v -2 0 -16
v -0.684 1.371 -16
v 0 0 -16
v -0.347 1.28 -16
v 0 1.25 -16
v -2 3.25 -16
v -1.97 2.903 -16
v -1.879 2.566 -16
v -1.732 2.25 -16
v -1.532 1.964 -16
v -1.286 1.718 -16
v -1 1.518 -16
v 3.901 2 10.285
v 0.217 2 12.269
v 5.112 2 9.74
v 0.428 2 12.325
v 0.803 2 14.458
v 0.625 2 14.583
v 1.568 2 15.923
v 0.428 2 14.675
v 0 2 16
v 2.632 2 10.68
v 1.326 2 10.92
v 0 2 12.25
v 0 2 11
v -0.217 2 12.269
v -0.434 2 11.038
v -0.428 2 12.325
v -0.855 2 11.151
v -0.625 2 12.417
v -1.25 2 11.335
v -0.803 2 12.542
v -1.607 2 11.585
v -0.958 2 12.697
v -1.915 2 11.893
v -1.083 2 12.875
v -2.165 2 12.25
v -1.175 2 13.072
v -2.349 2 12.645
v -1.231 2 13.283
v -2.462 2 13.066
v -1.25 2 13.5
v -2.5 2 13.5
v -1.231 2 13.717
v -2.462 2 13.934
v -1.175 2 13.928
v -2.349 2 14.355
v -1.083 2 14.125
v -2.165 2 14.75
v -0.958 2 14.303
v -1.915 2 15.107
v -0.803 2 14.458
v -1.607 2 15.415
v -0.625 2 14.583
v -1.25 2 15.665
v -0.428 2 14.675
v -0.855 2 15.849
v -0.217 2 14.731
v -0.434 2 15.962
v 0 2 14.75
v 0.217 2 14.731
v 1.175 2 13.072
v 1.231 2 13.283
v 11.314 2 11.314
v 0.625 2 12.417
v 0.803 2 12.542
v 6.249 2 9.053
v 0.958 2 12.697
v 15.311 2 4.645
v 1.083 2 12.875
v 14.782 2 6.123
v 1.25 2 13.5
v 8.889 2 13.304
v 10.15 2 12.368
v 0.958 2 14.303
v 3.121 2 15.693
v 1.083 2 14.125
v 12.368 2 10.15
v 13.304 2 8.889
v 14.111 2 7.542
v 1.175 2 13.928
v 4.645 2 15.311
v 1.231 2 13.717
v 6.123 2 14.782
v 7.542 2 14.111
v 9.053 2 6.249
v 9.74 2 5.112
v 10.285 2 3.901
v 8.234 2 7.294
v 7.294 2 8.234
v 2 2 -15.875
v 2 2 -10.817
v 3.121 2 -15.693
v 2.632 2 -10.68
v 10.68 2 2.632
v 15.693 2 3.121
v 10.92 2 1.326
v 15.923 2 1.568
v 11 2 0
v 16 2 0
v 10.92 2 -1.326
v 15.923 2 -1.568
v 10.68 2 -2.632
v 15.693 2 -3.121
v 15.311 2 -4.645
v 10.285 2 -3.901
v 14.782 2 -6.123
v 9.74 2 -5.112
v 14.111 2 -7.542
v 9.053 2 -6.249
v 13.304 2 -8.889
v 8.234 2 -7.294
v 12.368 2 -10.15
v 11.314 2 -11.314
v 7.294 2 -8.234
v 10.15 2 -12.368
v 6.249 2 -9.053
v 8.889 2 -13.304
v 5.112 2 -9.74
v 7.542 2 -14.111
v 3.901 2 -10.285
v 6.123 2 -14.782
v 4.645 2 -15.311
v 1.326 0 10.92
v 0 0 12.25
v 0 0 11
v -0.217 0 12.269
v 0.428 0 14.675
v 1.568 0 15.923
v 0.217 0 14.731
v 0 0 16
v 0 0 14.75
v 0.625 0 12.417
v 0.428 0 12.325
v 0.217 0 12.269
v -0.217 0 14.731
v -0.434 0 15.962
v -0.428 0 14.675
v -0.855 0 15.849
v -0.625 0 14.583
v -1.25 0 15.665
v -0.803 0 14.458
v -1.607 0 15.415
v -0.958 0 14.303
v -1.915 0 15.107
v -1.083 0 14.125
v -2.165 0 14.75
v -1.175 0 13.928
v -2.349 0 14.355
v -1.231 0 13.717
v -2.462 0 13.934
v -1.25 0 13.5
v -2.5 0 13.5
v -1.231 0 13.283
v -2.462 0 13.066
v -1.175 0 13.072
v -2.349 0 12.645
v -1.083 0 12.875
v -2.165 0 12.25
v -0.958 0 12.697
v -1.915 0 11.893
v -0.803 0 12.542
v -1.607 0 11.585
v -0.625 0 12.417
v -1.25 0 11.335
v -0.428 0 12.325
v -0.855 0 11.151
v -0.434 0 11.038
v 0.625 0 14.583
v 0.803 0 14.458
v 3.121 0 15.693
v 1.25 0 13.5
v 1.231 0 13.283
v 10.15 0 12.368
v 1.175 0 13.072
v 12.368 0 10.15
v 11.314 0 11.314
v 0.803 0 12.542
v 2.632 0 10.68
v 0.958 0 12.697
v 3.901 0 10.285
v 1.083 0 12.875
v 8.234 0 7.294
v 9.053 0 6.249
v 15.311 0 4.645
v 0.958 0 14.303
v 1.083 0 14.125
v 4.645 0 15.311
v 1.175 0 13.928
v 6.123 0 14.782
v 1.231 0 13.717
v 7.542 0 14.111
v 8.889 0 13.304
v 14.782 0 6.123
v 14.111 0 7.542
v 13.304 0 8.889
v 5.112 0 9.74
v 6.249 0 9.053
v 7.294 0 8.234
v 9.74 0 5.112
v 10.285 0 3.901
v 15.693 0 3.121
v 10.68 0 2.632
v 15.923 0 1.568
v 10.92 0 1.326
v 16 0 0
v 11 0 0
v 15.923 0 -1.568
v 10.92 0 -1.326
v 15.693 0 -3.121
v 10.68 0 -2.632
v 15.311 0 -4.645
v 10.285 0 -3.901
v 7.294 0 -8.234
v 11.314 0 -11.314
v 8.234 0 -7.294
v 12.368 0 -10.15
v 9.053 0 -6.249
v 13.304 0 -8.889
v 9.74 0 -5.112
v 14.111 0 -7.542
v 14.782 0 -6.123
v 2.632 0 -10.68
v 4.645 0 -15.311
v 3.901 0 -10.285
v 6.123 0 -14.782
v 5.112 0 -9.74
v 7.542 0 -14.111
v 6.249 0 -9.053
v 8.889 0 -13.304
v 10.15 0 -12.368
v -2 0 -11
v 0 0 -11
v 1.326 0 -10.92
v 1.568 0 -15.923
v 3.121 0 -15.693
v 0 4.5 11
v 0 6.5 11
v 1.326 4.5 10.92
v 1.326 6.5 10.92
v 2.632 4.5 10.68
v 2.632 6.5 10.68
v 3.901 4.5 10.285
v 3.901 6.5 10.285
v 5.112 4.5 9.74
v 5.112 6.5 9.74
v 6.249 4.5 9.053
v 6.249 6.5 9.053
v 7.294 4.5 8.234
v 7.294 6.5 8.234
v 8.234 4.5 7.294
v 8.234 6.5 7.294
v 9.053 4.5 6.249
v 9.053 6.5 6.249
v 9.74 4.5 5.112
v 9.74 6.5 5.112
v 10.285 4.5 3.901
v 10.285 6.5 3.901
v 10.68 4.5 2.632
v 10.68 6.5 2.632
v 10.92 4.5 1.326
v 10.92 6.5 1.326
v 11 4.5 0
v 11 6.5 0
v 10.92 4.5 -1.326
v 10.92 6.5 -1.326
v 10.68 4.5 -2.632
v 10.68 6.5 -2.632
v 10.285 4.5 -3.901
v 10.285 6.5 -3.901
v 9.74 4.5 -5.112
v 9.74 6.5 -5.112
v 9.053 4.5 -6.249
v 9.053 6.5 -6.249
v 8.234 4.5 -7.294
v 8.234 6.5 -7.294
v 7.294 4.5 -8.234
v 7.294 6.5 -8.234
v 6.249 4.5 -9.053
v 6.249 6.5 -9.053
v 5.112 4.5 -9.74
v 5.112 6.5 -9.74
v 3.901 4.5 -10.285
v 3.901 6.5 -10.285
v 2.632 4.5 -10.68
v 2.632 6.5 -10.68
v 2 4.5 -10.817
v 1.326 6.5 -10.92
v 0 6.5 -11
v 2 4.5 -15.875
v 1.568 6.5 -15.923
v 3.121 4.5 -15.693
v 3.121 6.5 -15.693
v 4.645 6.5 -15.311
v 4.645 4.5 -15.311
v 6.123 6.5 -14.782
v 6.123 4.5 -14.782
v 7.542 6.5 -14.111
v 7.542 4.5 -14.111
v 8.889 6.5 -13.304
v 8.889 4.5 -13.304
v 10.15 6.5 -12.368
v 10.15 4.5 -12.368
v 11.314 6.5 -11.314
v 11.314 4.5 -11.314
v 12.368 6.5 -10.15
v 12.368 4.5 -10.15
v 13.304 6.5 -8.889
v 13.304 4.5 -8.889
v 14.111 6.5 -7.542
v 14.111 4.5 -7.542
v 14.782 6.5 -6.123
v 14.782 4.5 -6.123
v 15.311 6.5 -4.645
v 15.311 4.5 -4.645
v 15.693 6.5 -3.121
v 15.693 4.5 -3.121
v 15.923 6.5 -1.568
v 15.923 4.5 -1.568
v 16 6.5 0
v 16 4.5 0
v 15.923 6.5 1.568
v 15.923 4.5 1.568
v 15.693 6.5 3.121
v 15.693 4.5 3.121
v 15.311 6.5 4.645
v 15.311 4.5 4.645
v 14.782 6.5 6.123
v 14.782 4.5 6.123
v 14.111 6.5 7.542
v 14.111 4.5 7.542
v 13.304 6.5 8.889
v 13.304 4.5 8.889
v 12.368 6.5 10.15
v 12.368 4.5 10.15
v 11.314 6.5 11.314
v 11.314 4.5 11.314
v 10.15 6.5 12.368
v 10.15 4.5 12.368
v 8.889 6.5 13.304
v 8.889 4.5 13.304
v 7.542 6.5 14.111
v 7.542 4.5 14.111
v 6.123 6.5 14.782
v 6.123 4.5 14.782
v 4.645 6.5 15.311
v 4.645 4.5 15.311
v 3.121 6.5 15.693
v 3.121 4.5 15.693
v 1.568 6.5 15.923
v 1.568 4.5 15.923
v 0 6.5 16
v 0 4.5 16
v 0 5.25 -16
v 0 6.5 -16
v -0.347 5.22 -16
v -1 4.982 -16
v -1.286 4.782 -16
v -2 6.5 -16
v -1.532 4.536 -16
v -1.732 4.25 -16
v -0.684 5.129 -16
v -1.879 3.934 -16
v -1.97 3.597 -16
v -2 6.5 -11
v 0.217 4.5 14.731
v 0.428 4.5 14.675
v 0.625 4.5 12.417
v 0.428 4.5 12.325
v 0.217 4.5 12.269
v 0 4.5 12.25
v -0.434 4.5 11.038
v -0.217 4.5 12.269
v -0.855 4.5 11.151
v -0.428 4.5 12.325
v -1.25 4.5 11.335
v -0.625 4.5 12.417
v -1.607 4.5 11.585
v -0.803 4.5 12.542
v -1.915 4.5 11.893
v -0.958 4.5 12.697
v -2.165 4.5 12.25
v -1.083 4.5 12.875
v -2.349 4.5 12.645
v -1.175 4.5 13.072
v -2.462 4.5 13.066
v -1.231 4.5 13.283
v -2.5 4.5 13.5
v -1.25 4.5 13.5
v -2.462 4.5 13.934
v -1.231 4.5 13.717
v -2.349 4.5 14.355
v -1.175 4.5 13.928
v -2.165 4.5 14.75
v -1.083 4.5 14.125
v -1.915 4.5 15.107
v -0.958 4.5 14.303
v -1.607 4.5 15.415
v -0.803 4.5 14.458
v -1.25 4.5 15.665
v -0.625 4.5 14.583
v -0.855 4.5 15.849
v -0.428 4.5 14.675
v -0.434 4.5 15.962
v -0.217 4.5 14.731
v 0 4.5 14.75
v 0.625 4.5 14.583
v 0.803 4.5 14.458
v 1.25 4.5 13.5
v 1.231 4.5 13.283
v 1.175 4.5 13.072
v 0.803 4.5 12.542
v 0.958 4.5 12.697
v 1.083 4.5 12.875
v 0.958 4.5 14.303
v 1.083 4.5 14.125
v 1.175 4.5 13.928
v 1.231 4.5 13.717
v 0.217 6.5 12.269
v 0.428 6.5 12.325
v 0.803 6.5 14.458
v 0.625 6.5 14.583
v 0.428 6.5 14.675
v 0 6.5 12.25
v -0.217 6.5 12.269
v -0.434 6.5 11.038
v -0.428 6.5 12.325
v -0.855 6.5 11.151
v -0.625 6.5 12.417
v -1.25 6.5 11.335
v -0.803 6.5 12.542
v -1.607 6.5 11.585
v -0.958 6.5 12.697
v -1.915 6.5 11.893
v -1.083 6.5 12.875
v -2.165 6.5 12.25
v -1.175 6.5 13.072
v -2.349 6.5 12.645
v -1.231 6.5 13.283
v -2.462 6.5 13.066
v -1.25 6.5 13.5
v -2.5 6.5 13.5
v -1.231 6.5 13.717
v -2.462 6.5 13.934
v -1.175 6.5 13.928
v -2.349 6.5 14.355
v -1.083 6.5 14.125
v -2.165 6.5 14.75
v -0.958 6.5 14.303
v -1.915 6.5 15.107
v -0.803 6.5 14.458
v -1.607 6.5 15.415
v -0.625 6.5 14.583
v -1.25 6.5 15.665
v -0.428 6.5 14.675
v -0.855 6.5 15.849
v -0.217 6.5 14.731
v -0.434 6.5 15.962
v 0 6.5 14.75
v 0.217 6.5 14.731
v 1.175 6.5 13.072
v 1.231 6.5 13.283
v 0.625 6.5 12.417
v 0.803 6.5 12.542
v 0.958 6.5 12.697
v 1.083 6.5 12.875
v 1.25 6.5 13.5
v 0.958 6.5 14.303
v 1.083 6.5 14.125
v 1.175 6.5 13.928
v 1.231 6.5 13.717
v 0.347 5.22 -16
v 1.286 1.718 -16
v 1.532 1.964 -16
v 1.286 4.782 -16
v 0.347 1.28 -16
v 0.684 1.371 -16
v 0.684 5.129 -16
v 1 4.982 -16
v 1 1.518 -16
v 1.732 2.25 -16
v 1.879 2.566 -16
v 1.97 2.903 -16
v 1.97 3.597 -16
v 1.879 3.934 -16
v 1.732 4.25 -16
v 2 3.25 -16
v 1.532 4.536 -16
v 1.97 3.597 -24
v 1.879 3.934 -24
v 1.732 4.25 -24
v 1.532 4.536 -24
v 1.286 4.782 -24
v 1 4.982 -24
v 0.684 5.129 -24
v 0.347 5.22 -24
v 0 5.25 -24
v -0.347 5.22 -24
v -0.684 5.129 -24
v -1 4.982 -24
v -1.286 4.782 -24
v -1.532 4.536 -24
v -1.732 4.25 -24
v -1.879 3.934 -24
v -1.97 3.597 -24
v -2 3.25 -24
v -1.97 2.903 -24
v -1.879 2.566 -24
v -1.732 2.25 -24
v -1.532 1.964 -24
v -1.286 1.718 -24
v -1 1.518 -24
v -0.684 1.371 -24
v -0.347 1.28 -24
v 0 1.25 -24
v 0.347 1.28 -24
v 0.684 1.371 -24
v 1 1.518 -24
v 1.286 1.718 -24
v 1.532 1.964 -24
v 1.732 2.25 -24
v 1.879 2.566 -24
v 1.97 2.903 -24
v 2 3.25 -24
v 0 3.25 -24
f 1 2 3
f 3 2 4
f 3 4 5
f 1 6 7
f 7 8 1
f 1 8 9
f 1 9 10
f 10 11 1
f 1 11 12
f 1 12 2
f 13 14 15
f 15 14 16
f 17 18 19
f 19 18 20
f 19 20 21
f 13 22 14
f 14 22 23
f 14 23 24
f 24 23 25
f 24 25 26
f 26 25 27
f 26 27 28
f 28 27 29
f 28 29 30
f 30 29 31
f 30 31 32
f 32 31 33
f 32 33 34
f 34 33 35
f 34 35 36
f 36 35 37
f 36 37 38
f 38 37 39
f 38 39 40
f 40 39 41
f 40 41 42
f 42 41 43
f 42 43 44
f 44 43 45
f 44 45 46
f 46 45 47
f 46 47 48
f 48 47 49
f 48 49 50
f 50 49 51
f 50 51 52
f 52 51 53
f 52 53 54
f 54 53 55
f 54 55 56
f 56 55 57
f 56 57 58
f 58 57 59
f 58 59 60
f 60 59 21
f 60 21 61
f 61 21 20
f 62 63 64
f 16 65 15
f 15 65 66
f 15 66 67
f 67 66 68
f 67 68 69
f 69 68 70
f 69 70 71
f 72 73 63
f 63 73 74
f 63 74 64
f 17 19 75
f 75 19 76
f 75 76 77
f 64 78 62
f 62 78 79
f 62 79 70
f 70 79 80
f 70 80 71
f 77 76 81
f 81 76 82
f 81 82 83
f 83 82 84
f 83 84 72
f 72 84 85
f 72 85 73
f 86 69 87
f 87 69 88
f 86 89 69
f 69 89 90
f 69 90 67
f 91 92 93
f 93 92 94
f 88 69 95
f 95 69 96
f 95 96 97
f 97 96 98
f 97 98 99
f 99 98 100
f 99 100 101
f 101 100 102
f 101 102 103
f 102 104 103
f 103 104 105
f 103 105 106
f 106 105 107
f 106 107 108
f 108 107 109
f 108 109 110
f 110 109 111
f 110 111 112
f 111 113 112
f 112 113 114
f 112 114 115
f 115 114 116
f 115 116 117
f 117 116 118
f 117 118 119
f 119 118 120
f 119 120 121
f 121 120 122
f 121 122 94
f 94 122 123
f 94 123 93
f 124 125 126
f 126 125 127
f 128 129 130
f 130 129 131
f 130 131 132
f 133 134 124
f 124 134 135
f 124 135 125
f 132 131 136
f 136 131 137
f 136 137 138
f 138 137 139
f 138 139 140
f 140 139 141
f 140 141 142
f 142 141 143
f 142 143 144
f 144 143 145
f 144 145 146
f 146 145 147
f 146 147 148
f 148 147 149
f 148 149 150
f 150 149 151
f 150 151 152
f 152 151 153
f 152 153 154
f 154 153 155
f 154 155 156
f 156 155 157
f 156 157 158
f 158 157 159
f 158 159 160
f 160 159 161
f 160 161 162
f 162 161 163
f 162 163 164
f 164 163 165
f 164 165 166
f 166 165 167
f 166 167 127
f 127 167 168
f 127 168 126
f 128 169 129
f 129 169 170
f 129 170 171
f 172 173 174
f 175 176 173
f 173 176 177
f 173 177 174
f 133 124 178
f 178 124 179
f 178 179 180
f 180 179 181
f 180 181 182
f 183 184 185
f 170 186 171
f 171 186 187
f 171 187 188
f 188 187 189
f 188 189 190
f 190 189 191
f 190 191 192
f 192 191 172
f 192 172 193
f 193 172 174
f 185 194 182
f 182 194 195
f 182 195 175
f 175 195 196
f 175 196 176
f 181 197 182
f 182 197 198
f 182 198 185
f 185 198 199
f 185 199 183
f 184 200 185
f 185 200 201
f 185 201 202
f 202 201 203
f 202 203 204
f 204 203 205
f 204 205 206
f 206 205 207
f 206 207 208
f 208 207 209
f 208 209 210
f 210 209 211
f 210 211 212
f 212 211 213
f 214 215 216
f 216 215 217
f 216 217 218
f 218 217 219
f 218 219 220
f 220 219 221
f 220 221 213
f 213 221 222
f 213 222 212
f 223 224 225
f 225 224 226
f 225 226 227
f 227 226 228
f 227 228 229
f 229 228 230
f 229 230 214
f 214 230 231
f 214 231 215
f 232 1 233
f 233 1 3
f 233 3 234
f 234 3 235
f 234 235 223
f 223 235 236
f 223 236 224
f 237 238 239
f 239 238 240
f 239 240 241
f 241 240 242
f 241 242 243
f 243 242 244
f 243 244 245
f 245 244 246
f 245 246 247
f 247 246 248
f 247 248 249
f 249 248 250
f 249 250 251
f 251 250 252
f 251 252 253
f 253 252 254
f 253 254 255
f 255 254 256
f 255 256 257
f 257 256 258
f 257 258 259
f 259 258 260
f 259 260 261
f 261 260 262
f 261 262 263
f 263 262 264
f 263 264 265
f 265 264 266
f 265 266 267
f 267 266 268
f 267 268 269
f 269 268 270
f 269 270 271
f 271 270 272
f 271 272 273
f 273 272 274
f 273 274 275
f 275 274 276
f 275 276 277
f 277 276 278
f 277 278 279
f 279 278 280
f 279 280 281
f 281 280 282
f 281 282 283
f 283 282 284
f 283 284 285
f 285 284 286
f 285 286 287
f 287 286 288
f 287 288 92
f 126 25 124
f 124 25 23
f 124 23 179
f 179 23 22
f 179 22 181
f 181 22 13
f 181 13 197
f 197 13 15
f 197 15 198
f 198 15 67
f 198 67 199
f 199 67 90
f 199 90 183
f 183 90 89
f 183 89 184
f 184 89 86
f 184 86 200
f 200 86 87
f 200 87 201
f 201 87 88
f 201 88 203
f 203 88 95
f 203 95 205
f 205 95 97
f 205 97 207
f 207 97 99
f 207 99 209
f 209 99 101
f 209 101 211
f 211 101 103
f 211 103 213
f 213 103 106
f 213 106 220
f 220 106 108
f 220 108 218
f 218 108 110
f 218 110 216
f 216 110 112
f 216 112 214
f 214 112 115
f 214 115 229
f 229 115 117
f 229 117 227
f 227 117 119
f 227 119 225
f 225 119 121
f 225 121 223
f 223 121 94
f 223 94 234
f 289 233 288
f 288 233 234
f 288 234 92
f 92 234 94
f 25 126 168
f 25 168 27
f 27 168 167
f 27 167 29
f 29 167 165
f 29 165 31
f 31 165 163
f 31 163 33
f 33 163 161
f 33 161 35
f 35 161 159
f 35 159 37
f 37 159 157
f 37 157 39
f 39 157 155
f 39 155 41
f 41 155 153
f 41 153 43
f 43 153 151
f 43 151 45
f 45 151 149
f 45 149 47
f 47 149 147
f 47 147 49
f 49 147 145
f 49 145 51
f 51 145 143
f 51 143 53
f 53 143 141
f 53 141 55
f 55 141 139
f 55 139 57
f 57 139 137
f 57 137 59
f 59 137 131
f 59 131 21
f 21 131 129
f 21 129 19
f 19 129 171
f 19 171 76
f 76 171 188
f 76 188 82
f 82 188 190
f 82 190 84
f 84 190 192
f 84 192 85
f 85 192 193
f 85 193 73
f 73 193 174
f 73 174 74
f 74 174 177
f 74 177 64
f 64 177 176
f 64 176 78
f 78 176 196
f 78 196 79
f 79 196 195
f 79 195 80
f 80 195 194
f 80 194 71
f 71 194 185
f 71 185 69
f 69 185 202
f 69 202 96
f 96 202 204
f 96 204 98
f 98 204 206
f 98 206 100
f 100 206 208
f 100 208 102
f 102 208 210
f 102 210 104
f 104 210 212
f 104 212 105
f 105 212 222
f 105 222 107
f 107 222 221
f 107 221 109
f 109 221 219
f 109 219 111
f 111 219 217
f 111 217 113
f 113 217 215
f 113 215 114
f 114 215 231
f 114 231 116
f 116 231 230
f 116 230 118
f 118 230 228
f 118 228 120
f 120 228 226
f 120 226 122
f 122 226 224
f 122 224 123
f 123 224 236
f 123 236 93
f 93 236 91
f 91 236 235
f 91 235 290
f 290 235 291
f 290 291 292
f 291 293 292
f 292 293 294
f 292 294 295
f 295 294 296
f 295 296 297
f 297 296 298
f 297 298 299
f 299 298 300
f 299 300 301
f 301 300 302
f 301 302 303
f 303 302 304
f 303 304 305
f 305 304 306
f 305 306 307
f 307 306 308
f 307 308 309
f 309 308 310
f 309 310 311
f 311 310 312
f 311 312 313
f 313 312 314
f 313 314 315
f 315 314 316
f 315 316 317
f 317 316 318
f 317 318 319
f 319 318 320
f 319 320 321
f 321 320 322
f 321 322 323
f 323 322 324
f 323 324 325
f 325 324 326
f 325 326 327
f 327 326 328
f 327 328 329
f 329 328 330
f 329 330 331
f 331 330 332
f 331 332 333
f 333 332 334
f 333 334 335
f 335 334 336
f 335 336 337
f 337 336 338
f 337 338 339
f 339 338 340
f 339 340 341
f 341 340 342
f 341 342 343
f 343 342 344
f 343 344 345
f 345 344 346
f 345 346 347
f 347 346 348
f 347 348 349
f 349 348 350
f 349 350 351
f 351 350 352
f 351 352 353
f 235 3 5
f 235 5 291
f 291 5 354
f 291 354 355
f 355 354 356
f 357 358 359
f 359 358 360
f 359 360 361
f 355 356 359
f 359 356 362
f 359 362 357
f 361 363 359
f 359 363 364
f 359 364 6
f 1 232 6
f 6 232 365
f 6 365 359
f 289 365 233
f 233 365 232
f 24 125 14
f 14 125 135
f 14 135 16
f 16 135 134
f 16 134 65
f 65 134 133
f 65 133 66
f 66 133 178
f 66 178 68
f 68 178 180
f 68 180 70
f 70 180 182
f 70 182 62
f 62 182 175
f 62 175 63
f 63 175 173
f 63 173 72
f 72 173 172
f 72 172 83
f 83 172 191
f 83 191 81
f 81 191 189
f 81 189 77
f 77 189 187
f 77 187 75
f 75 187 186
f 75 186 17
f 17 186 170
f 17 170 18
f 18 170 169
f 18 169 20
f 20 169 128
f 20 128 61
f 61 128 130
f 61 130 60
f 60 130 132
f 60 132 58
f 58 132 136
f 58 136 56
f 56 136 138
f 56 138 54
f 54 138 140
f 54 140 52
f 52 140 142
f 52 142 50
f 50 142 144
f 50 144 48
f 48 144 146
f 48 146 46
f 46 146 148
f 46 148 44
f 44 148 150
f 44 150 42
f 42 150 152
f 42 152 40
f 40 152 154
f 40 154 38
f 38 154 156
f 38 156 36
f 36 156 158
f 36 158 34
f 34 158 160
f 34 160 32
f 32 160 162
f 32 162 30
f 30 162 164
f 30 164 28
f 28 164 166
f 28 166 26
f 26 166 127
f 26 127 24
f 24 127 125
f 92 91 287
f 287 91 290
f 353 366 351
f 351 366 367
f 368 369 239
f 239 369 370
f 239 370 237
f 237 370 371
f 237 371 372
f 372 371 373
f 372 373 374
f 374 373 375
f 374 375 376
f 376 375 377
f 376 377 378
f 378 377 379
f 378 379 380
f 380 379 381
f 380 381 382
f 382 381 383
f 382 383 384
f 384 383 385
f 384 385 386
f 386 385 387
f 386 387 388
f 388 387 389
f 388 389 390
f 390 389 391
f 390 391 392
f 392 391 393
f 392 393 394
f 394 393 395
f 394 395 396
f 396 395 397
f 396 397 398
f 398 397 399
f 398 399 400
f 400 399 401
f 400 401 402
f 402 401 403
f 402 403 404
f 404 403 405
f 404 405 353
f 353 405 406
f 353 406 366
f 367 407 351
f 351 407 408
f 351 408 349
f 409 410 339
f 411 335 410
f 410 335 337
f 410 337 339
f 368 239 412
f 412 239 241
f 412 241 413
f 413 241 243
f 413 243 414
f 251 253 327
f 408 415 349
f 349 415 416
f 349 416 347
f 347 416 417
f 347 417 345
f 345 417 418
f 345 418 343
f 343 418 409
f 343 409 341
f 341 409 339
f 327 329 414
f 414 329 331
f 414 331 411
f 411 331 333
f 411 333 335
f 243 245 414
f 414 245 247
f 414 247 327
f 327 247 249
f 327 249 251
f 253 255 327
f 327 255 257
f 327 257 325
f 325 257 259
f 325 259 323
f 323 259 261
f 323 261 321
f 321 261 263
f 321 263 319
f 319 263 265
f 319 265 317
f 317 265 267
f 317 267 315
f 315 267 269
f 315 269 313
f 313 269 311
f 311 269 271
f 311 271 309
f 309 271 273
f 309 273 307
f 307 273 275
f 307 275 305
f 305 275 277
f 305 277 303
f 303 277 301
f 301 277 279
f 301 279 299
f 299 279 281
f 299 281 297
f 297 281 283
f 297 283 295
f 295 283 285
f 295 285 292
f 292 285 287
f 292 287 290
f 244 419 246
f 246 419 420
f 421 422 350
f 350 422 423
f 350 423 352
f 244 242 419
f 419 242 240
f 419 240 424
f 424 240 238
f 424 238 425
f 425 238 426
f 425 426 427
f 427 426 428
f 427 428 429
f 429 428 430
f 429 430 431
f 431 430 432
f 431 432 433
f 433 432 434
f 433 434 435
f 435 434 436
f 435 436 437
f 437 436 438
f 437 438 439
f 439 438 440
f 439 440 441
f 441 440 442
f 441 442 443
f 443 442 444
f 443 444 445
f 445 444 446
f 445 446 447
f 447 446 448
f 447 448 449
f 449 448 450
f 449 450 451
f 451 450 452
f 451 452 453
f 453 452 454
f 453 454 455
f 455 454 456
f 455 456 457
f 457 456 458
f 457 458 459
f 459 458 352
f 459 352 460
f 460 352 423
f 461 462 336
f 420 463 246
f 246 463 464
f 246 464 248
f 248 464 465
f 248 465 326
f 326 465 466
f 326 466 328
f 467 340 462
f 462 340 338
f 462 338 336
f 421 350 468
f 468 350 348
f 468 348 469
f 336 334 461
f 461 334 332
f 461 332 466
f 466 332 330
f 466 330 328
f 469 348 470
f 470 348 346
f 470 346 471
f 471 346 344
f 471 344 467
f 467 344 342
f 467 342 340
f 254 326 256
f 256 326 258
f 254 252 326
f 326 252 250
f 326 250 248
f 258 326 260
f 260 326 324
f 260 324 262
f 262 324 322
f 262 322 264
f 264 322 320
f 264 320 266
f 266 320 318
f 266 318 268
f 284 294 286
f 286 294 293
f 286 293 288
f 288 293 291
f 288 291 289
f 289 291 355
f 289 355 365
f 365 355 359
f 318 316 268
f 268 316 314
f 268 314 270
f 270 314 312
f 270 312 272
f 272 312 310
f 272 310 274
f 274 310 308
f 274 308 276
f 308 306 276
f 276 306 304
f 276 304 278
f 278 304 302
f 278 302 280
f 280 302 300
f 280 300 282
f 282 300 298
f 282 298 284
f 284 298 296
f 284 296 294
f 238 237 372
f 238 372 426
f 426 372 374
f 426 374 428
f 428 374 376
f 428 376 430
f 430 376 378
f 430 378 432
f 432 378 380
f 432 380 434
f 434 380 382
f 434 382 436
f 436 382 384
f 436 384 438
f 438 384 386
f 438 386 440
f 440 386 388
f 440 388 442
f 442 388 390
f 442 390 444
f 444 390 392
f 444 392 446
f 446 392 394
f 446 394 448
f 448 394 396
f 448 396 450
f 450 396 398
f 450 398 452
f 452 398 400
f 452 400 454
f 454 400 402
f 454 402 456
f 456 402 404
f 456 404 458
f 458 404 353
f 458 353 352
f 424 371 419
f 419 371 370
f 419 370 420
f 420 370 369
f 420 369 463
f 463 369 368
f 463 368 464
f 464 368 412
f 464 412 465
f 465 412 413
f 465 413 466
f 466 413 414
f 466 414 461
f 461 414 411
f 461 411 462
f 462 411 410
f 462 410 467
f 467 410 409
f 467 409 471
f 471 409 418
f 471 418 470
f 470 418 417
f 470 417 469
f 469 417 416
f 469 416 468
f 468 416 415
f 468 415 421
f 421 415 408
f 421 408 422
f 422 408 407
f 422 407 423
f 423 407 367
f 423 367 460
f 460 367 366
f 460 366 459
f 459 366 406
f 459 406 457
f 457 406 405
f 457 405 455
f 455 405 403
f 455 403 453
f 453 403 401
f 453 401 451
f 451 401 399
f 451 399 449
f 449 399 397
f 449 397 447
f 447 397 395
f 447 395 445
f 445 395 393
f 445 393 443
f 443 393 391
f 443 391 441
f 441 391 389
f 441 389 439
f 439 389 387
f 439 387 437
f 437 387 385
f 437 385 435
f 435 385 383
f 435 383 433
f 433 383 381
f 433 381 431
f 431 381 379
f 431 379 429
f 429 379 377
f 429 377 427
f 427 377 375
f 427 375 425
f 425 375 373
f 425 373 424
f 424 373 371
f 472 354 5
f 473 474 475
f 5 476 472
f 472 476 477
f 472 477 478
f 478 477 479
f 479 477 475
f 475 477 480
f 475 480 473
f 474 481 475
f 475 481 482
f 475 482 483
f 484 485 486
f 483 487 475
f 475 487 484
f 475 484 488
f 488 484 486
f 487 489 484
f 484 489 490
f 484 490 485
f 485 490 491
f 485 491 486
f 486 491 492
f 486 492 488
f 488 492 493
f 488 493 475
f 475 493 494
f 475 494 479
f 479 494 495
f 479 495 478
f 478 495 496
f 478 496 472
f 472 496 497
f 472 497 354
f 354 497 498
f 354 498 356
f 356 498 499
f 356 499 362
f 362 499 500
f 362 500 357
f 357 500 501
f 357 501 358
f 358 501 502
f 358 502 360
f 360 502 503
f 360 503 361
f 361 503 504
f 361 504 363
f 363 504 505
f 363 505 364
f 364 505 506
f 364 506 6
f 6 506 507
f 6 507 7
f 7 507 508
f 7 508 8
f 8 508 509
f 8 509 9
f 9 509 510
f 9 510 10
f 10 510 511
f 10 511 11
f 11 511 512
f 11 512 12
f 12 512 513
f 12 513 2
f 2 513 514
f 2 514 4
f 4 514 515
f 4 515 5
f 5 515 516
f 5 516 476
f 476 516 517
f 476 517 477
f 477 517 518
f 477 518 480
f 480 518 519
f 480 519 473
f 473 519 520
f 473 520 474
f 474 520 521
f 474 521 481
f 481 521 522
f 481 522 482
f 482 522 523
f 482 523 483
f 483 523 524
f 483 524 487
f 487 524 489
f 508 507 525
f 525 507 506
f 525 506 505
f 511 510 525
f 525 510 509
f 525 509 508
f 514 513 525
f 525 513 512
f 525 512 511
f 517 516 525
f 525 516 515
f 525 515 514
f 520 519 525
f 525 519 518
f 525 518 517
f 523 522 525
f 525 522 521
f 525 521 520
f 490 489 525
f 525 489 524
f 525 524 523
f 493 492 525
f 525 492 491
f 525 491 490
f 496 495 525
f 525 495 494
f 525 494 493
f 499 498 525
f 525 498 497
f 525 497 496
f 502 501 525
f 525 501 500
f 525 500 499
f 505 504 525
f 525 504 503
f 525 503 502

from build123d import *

# Parameters (mm, degrees)
SKETCH1_R           = 1.25
BOSS_EXTRUDE1_DEPTH = 2
LPATTERN1_COUNT     = 2
LPATTERN1_PITCH     = 4.5
BOSS_EXTRUDE2_DEPTH = 2.5
SKETCH4_R           = 2
BOSS_EXTRUDE3_DEPTH = 8


with BuildPart() as part:
    # Sketch1 → Boss-Extrude1 (new body)
    with BuildSketch(Plane(origin=(0, 0, 0), x_dir=(1, 0, 0), z_dir=(0, 1, 0))):
        with BuildLine():
            Line((0, 11), (-2, 11))
            Line((-2, 11), (-2, 16))
            Line((-2, 16), (0, 16))
            ThreePointArc((0, 16), (16, 0), (0, -16))
            ThreePointArc((0, -16), (-2.5, -13.5), (0, -11))
            ThreePointArc((0, -11), (11, 0), (0, 11))
        make_face()
        with Locations(Location((0, -13.5, 0), (0, 0, 270))):
            Circle(SKETCH1_R, mode=Mode.SUBTRACT)
    extrude(amount=BOSS_EXTRUDE1_DEPTH)


with BuildPart() as lpattern1_1:
    # LPattern1: pattern copy
    add(part.part.moved(Location(Vector(0, 1, 0) * (1 * LPATTERN1_PITCH))))


with BuildPart() as part_1:
    add(part.part)

    add(lpattern1_1.part)  # Boss-Extrude2 merges LPattern1_1
    # Sketch3 → Boss-Extrude2 (add)
    with BuildSketch(Plane(origin=(0, 2, 0), x_dir=(1, 0, 0), z_dir=(0, 1, 0))):
        with BuildLine():
            Line((-2, 16), (-2, 11))
            Line((-2, 11), (0, 11))
            ThreePointArc((0, 11), (1.004193186, 10.954067557), (2, 10.816653826))
            Line((2, 10.816653826), (2, 15.874507866))
            ThreePointArc((2, 15.874507866), (1.001966601, 15.968596148), (0, 16))
            Line((0, 16), (-2, 16))
        make_face()
    extrude(amount=BOSS_EXTRUDE2_DEPTH)

    # Sketch4 → Boss-Extrude3 (add)
    with BuildSketch(Plane(origin=(0, 0, -16), x_dir=(-1, 0, 0), z_dir=(0, 0, -1))):
        with Locations((0, 3.25)):
            Circle(SKETCH4_R)
    extrude(amount=BOSS_EXTRUDE3_DEPTH)


solid = part_1.part
